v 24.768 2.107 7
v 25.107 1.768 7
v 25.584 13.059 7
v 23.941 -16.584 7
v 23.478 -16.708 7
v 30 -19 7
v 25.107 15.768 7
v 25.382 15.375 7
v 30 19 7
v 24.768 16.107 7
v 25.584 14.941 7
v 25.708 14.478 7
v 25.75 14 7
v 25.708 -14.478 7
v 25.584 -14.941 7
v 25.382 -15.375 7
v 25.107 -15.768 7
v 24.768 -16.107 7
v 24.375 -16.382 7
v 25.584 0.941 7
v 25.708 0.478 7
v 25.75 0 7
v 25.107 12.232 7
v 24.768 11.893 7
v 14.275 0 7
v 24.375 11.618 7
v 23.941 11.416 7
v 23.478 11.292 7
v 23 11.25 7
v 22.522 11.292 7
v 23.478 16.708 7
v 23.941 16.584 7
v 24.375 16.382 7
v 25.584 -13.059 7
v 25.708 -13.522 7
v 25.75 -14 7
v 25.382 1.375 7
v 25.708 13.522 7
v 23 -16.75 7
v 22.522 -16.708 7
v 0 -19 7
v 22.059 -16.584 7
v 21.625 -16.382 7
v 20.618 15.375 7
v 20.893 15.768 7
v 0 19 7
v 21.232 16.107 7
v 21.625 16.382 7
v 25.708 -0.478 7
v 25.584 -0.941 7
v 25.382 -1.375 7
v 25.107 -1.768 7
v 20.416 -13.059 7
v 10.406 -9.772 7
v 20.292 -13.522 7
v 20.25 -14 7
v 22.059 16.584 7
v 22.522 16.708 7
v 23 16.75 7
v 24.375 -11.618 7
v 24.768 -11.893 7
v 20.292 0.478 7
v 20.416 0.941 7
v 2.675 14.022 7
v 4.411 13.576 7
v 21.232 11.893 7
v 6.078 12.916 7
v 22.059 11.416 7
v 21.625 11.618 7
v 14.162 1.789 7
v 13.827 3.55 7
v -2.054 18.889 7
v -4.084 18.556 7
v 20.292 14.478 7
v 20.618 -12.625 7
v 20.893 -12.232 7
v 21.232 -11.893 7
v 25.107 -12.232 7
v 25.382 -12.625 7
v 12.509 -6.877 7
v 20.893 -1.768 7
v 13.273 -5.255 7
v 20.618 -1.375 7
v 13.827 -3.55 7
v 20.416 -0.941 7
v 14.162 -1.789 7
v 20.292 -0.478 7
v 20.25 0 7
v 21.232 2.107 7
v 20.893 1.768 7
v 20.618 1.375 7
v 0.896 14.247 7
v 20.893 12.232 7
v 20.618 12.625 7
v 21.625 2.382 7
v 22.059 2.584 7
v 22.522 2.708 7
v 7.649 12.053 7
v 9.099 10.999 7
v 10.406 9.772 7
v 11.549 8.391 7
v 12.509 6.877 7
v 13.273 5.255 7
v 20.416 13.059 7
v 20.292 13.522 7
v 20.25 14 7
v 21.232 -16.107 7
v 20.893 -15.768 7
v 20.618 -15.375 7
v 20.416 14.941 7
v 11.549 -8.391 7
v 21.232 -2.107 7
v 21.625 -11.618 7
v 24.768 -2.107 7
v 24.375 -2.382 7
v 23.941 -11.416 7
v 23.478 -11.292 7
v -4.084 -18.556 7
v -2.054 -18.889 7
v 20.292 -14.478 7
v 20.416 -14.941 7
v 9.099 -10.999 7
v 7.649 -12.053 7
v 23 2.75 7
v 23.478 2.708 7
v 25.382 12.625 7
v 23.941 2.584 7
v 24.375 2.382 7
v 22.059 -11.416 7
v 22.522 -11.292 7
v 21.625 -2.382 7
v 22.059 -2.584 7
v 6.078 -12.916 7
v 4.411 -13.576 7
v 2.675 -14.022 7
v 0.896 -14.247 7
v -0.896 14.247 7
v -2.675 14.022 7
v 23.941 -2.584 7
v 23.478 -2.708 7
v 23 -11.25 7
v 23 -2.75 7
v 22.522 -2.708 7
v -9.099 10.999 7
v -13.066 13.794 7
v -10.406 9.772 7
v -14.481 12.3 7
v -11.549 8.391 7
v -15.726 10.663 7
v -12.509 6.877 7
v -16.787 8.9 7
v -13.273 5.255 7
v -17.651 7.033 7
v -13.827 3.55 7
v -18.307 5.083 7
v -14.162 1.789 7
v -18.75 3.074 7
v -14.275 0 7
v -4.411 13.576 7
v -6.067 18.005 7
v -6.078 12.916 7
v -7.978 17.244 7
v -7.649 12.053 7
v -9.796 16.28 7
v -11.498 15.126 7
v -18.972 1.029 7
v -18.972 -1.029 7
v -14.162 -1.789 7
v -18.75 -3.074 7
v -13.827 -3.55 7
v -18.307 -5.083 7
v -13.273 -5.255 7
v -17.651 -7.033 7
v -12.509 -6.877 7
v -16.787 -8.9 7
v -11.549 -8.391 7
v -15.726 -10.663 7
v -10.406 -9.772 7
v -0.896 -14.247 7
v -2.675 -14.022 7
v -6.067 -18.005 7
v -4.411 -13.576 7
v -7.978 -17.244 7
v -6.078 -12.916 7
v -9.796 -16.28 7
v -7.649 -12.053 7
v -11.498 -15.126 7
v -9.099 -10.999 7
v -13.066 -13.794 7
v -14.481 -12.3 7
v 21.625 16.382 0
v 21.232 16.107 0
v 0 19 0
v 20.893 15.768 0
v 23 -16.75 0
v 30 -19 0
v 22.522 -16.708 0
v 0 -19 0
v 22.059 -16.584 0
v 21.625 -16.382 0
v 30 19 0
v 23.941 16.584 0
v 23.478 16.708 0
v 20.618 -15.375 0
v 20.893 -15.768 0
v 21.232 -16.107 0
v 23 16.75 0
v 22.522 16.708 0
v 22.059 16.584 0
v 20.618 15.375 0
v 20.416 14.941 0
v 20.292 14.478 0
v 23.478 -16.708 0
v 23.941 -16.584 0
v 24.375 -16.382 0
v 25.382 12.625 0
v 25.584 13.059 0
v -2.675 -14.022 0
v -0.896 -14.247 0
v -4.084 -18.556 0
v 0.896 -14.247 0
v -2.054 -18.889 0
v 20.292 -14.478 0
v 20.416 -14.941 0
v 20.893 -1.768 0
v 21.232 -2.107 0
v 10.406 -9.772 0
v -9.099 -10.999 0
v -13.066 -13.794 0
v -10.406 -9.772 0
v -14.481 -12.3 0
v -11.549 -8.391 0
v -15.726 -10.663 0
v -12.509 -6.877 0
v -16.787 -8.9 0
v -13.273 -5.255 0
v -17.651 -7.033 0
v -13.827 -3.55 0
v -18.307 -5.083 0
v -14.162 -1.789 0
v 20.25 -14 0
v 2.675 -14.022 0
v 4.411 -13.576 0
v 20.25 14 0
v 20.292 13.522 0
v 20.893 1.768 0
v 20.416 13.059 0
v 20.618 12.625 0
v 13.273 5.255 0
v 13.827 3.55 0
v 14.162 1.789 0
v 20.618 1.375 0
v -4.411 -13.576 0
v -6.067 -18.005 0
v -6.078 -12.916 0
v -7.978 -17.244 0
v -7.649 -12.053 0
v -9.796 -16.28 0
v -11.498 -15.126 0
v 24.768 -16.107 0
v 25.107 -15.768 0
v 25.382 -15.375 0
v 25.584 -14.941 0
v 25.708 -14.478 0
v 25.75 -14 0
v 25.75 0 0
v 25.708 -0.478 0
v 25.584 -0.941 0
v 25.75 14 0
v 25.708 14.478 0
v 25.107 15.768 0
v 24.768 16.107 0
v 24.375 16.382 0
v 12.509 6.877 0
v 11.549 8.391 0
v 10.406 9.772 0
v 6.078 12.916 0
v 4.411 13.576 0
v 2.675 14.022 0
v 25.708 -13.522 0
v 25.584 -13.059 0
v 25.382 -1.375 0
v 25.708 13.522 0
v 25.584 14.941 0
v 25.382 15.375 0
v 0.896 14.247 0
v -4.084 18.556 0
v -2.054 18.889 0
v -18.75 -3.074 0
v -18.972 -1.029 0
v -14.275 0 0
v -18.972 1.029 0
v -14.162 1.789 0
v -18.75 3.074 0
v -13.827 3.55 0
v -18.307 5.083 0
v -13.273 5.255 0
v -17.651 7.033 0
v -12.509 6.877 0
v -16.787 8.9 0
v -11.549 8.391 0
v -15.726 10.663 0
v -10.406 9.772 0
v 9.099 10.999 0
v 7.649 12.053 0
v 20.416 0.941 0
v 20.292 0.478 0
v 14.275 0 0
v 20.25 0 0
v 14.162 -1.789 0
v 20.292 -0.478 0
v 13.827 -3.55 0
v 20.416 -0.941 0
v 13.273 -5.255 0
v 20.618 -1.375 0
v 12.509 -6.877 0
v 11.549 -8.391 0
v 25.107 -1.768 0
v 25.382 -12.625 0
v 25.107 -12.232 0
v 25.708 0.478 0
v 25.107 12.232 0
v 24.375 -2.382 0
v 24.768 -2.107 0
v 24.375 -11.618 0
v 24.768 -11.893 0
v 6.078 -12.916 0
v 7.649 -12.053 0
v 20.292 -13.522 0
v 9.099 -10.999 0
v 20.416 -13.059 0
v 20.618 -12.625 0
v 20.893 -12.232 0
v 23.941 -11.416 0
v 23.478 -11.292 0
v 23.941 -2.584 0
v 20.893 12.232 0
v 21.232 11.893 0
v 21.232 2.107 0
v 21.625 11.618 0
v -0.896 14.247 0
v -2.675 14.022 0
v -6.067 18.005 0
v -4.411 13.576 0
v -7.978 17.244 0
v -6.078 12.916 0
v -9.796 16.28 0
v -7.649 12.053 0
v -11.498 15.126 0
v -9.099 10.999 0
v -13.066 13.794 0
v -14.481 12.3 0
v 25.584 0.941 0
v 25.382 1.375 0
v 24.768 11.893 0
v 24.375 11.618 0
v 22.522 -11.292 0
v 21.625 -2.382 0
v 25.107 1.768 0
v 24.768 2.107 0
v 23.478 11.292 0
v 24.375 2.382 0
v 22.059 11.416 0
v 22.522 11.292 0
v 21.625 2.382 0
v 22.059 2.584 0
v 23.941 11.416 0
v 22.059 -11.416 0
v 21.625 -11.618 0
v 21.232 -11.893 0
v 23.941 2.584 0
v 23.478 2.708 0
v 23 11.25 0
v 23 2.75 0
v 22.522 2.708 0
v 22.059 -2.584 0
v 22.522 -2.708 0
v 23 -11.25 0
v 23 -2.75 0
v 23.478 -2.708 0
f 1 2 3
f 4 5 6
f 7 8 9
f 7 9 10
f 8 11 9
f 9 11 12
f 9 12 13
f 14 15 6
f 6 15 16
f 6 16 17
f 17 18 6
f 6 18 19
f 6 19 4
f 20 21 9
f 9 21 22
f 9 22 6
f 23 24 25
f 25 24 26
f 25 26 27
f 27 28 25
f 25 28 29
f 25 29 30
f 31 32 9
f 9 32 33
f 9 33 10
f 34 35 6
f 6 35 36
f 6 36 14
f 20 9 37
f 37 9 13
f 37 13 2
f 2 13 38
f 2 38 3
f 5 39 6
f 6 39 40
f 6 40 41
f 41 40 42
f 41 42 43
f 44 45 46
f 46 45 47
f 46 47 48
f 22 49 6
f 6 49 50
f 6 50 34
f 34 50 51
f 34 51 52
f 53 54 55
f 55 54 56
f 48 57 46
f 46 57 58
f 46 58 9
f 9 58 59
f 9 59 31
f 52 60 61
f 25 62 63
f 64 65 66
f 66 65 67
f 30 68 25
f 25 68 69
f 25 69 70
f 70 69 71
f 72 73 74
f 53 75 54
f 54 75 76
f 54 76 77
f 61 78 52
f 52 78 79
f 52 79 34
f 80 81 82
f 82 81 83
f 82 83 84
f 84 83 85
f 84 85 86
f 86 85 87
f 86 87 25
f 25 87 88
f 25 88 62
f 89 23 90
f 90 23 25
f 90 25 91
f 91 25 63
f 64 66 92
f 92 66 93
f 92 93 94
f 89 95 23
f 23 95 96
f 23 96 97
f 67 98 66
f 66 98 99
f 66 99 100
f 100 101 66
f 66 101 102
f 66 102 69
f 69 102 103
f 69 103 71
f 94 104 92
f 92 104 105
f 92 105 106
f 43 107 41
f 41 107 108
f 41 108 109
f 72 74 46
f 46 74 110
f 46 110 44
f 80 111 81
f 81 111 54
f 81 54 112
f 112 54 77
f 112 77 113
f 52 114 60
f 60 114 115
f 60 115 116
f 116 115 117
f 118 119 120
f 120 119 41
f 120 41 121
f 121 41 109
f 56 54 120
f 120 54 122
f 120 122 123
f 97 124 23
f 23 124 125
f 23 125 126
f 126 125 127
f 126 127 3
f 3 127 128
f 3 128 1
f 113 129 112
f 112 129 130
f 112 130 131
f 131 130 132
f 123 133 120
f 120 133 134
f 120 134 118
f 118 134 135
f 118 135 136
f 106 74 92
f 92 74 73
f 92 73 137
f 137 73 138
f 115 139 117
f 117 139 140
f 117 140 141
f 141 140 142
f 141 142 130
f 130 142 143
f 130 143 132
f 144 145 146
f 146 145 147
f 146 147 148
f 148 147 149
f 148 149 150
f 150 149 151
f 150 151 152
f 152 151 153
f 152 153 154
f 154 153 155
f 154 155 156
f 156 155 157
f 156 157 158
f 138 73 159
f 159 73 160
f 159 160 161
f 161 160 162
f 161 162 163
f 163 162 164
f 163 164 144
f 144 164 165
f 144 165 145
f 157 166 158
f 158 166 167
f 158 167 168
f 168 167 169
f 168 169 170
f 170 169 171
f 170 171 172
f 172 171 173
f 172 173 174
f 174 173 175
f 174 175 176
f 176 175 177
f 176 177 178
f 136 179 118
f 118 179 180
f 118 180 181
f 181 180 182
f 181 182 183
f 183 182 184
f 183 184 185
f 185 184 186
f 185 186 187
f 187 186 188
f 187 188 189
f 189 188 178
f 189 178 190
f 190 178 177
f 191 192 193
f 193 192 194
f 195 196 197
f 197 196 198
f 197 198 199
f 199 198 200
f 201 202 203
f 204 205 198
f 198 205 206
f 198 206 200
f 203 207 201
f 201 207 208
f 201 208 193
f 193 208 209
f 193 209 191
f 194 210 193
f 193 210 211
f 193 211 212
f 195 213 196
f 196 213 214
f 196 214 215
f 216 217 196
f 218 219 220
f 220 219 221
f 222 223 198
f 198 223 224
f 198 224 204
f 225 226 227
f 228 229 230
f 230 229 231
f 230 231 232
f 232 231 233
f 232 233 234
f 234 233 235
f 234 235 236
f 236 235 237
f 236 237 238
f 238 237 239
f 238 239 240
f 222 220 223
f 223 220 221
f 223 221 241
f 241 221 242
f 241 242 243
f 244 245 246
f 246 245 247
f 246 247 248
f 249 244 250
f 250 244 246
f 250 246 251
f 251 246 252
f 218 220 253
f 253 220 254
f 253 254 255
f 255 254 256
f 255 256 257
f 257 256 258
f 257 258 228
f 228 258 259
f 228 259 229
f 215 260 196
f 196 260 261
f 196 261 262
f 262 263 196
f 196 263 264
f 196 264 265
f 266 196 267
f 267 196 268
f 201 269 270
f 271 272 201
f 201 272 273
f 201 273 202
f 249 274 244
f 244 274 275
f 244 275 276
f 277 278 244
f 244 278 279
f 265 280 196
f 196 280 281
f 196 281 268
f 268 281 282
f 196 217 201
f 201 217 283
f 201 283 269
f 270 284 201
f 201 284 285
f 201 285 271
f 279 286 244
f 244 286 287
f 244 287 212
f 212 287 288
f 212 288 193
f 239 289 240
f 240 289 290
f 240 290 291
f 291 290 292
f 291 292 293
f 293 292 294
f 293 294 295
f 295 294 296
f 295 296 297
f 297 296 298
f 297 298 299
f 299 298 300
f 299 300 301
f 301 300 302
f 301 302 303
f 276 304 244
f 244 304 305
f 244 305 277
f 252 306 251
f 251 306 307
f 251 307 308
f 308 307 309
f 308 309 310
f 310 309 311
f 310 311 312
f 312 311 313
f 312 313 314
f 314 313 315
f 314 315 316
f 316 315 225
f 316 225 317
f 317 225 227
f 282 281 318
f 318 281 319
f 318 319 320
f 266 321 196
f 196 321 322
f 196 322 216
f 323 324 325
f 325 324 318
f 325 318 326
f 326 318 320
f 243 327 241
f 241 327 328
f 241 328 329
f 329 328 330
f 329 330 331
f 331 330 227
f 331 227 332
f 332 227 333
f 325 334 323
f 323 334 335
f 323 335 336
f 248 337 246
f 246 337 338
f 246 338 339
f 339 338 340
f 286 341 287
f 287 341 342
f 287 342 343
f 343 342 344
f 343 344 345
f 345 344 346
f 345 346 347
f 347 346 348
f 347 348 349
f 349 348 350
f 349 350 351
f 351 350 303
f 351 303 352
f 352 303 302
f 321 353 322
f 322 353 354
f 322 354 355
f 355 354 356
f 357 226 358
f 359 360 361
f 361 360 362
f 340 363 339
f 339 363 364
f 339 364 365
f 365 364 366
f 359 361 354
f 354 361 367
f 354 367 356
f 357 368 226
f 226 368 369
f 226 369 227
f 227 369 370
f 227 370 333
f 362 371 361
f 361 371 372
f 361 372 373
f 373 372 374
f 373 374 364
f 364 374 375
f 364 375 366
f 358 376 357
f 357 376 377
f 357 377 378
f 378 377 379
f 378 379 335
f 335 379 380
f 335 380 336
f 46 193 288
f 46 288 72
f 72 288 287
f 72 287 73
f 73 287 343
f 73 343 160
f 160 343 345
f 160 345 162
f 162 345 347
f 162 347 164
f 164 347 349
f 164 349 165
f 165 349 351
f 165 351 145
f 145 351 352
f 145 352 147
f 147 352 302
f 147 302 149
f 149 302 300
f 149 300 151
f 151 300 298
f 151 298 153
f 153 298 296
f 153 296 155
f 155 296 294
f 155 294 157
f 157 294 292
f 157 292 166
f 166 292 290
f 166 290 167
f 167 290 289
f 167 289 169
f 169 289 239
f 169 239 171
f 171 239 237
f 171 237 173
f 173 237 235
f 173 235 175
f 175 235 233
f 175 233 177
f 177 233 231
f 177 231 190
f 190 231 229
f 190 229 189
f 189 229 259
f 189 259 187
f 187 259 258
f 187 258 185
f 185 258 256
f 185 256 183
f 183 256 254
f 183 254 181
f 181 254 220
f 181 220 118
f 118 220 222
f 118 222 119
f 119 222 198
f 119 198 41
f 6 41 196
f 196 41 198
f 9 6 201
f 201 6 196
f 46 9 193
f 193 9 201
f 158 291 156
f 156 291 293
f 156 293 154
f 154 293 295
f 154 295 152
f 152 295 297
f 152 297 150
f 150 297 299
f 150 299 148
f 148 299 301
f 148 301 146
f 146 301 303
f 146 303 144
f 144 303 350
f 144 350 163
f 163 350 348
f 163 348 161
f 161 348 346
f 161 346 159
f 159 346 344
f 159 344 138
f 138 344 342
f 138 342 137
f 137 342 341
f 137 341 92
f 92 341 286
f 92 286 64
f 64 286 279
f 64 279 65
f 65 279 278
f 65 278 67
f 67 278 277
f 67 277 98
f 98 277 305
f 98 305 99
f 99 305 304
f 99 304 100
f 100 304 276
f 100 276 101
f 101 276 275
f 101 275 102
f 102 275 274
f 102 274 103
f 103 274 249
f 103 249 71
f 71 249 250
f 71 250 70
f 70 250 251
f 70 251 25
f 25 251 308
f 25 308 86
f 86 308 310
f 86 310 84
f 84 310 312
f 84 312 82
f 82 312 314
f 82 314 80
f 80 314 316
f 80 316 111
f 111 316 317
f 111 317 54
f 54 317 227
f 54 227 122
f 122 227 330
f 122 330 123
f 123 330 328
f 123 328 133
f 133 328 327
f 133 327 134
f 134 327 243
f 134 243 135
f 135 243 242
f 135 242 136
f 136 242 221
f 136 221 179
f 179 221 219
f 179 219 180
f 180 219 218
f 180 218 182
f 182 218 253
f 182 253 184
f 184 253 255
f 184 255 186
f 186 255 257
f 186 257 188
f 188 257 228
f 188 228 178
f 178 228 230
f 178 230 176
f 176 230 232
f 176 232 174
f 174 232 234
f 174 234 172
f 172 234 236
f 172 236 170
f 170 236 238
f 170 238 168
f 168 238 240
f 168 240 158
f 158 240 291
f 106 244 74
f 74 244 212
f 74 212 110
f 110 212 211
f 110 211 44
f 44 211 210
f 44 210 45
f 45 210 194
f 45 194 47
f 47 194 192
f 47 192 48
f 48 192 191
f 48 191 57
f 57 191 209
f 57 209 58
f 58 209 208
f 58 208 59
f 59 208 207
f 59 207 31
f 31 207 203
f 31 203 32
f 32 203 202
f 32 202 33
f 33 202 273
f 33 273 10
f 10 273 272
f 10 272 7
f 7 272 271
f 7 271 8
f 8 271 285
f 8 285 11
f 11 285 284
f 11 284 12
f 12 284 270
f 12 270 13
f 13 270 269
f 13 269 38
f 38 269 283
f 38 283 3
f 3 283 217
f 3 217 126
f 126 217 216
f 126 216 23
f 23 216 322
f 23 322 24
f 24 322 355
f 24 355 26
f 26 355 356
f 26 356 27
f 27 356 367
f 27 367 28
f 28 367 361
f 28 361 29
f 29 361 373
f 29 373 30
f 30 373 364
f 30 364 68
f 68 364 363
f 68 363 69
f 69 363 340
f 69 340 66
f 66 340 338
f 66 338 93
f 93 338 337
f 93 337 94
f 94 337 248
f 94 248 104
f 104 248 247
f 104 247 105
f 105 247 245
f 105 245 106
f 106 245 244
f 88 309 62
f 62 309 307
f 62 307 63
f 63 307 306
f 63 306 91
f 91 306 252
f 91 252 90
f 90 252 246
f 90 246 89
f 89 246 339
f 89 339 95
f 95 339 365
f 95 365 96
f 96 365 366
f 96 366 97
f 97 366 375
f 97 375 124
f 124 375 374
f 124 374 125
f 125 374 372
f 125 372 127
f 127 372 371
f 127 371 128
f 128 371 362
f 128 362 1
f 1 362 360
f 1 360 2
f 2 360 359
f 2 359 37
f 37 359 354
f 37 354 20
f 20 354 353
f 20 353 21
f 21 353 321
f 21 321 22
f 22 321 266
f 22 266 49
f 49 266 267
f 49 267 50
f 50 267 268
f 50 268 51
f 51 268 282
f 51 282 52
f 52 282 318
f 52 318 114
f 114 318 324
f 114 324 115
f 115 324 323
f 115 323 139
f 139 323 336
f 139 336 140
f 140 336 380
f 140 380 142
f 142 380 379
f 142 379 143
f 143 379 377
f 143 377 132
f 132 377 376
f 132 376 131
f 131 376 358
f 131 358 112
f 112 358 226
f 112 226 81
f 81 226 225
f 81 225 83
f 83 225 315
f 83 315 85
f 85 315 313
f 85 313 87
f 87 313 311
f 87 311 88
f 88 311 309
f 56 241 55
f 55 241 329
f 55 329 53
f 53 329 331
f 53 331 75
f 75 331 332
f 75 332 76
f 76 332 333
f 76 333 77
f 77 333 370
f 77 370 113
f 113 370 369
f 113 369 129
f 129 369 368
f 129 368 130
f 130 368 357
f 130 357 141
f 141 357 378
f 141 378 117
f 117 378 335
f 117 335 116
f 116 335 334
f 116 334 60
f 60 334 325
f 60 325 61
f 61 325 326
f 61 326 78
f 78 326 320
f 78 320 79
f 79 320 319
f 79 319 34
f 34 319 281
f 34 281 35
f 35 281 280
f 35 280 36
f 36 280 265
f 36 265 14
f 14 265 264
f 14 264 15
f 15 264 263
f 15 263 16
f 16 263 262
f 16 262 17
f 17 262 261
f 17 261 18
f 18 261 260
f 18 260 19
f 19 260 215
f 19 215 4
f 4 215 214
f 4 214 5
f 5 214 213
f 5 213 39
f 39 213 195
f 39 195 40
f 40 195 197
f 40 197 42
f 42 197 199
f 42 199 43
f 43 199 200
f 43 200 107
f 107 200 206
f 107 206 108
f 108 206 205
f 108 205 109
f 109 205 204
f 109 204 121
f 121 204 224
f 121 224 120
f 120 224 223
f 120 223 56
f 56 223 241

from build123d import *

# Parameters (mm, degrees)
SKETCH1_R           = 14.275
SKETCH1_R_2         = 2.75
BOSS_EXTRUDE1_DEPTH = 7


with BuildPart() as part:
    # Sketch1 → Boss-Extrude1 (new body)
    with BuildSketch(Plane.XY):
        with BuildLine():
            Line((0, -19), (30, -19))
            Line((30, -19), (30, 19))
            Line((30, 19), (0, 19))
            ThreePointArc((0, 19), (-19, 0), (0, -19))
        make_face()
        Circle(SKETCH1_R, mode=Mode.SUBTRACT)
        with Locations((23, 14)):
            Circle(SKETCH1_R_2, mode=Mode.SUBTRACT)
        with Locations((23, 0)):
            Circle(SKETCH1_R_2, mode=Mode.SUBTRACT)
        with Locations((23, -14)):
            Circle(SKETCH1_R_2, mode=Mode.SUBTRACT)
    extrude(amount=BOSS_EXTRUDE1_DEPTH)


solid = part.part
